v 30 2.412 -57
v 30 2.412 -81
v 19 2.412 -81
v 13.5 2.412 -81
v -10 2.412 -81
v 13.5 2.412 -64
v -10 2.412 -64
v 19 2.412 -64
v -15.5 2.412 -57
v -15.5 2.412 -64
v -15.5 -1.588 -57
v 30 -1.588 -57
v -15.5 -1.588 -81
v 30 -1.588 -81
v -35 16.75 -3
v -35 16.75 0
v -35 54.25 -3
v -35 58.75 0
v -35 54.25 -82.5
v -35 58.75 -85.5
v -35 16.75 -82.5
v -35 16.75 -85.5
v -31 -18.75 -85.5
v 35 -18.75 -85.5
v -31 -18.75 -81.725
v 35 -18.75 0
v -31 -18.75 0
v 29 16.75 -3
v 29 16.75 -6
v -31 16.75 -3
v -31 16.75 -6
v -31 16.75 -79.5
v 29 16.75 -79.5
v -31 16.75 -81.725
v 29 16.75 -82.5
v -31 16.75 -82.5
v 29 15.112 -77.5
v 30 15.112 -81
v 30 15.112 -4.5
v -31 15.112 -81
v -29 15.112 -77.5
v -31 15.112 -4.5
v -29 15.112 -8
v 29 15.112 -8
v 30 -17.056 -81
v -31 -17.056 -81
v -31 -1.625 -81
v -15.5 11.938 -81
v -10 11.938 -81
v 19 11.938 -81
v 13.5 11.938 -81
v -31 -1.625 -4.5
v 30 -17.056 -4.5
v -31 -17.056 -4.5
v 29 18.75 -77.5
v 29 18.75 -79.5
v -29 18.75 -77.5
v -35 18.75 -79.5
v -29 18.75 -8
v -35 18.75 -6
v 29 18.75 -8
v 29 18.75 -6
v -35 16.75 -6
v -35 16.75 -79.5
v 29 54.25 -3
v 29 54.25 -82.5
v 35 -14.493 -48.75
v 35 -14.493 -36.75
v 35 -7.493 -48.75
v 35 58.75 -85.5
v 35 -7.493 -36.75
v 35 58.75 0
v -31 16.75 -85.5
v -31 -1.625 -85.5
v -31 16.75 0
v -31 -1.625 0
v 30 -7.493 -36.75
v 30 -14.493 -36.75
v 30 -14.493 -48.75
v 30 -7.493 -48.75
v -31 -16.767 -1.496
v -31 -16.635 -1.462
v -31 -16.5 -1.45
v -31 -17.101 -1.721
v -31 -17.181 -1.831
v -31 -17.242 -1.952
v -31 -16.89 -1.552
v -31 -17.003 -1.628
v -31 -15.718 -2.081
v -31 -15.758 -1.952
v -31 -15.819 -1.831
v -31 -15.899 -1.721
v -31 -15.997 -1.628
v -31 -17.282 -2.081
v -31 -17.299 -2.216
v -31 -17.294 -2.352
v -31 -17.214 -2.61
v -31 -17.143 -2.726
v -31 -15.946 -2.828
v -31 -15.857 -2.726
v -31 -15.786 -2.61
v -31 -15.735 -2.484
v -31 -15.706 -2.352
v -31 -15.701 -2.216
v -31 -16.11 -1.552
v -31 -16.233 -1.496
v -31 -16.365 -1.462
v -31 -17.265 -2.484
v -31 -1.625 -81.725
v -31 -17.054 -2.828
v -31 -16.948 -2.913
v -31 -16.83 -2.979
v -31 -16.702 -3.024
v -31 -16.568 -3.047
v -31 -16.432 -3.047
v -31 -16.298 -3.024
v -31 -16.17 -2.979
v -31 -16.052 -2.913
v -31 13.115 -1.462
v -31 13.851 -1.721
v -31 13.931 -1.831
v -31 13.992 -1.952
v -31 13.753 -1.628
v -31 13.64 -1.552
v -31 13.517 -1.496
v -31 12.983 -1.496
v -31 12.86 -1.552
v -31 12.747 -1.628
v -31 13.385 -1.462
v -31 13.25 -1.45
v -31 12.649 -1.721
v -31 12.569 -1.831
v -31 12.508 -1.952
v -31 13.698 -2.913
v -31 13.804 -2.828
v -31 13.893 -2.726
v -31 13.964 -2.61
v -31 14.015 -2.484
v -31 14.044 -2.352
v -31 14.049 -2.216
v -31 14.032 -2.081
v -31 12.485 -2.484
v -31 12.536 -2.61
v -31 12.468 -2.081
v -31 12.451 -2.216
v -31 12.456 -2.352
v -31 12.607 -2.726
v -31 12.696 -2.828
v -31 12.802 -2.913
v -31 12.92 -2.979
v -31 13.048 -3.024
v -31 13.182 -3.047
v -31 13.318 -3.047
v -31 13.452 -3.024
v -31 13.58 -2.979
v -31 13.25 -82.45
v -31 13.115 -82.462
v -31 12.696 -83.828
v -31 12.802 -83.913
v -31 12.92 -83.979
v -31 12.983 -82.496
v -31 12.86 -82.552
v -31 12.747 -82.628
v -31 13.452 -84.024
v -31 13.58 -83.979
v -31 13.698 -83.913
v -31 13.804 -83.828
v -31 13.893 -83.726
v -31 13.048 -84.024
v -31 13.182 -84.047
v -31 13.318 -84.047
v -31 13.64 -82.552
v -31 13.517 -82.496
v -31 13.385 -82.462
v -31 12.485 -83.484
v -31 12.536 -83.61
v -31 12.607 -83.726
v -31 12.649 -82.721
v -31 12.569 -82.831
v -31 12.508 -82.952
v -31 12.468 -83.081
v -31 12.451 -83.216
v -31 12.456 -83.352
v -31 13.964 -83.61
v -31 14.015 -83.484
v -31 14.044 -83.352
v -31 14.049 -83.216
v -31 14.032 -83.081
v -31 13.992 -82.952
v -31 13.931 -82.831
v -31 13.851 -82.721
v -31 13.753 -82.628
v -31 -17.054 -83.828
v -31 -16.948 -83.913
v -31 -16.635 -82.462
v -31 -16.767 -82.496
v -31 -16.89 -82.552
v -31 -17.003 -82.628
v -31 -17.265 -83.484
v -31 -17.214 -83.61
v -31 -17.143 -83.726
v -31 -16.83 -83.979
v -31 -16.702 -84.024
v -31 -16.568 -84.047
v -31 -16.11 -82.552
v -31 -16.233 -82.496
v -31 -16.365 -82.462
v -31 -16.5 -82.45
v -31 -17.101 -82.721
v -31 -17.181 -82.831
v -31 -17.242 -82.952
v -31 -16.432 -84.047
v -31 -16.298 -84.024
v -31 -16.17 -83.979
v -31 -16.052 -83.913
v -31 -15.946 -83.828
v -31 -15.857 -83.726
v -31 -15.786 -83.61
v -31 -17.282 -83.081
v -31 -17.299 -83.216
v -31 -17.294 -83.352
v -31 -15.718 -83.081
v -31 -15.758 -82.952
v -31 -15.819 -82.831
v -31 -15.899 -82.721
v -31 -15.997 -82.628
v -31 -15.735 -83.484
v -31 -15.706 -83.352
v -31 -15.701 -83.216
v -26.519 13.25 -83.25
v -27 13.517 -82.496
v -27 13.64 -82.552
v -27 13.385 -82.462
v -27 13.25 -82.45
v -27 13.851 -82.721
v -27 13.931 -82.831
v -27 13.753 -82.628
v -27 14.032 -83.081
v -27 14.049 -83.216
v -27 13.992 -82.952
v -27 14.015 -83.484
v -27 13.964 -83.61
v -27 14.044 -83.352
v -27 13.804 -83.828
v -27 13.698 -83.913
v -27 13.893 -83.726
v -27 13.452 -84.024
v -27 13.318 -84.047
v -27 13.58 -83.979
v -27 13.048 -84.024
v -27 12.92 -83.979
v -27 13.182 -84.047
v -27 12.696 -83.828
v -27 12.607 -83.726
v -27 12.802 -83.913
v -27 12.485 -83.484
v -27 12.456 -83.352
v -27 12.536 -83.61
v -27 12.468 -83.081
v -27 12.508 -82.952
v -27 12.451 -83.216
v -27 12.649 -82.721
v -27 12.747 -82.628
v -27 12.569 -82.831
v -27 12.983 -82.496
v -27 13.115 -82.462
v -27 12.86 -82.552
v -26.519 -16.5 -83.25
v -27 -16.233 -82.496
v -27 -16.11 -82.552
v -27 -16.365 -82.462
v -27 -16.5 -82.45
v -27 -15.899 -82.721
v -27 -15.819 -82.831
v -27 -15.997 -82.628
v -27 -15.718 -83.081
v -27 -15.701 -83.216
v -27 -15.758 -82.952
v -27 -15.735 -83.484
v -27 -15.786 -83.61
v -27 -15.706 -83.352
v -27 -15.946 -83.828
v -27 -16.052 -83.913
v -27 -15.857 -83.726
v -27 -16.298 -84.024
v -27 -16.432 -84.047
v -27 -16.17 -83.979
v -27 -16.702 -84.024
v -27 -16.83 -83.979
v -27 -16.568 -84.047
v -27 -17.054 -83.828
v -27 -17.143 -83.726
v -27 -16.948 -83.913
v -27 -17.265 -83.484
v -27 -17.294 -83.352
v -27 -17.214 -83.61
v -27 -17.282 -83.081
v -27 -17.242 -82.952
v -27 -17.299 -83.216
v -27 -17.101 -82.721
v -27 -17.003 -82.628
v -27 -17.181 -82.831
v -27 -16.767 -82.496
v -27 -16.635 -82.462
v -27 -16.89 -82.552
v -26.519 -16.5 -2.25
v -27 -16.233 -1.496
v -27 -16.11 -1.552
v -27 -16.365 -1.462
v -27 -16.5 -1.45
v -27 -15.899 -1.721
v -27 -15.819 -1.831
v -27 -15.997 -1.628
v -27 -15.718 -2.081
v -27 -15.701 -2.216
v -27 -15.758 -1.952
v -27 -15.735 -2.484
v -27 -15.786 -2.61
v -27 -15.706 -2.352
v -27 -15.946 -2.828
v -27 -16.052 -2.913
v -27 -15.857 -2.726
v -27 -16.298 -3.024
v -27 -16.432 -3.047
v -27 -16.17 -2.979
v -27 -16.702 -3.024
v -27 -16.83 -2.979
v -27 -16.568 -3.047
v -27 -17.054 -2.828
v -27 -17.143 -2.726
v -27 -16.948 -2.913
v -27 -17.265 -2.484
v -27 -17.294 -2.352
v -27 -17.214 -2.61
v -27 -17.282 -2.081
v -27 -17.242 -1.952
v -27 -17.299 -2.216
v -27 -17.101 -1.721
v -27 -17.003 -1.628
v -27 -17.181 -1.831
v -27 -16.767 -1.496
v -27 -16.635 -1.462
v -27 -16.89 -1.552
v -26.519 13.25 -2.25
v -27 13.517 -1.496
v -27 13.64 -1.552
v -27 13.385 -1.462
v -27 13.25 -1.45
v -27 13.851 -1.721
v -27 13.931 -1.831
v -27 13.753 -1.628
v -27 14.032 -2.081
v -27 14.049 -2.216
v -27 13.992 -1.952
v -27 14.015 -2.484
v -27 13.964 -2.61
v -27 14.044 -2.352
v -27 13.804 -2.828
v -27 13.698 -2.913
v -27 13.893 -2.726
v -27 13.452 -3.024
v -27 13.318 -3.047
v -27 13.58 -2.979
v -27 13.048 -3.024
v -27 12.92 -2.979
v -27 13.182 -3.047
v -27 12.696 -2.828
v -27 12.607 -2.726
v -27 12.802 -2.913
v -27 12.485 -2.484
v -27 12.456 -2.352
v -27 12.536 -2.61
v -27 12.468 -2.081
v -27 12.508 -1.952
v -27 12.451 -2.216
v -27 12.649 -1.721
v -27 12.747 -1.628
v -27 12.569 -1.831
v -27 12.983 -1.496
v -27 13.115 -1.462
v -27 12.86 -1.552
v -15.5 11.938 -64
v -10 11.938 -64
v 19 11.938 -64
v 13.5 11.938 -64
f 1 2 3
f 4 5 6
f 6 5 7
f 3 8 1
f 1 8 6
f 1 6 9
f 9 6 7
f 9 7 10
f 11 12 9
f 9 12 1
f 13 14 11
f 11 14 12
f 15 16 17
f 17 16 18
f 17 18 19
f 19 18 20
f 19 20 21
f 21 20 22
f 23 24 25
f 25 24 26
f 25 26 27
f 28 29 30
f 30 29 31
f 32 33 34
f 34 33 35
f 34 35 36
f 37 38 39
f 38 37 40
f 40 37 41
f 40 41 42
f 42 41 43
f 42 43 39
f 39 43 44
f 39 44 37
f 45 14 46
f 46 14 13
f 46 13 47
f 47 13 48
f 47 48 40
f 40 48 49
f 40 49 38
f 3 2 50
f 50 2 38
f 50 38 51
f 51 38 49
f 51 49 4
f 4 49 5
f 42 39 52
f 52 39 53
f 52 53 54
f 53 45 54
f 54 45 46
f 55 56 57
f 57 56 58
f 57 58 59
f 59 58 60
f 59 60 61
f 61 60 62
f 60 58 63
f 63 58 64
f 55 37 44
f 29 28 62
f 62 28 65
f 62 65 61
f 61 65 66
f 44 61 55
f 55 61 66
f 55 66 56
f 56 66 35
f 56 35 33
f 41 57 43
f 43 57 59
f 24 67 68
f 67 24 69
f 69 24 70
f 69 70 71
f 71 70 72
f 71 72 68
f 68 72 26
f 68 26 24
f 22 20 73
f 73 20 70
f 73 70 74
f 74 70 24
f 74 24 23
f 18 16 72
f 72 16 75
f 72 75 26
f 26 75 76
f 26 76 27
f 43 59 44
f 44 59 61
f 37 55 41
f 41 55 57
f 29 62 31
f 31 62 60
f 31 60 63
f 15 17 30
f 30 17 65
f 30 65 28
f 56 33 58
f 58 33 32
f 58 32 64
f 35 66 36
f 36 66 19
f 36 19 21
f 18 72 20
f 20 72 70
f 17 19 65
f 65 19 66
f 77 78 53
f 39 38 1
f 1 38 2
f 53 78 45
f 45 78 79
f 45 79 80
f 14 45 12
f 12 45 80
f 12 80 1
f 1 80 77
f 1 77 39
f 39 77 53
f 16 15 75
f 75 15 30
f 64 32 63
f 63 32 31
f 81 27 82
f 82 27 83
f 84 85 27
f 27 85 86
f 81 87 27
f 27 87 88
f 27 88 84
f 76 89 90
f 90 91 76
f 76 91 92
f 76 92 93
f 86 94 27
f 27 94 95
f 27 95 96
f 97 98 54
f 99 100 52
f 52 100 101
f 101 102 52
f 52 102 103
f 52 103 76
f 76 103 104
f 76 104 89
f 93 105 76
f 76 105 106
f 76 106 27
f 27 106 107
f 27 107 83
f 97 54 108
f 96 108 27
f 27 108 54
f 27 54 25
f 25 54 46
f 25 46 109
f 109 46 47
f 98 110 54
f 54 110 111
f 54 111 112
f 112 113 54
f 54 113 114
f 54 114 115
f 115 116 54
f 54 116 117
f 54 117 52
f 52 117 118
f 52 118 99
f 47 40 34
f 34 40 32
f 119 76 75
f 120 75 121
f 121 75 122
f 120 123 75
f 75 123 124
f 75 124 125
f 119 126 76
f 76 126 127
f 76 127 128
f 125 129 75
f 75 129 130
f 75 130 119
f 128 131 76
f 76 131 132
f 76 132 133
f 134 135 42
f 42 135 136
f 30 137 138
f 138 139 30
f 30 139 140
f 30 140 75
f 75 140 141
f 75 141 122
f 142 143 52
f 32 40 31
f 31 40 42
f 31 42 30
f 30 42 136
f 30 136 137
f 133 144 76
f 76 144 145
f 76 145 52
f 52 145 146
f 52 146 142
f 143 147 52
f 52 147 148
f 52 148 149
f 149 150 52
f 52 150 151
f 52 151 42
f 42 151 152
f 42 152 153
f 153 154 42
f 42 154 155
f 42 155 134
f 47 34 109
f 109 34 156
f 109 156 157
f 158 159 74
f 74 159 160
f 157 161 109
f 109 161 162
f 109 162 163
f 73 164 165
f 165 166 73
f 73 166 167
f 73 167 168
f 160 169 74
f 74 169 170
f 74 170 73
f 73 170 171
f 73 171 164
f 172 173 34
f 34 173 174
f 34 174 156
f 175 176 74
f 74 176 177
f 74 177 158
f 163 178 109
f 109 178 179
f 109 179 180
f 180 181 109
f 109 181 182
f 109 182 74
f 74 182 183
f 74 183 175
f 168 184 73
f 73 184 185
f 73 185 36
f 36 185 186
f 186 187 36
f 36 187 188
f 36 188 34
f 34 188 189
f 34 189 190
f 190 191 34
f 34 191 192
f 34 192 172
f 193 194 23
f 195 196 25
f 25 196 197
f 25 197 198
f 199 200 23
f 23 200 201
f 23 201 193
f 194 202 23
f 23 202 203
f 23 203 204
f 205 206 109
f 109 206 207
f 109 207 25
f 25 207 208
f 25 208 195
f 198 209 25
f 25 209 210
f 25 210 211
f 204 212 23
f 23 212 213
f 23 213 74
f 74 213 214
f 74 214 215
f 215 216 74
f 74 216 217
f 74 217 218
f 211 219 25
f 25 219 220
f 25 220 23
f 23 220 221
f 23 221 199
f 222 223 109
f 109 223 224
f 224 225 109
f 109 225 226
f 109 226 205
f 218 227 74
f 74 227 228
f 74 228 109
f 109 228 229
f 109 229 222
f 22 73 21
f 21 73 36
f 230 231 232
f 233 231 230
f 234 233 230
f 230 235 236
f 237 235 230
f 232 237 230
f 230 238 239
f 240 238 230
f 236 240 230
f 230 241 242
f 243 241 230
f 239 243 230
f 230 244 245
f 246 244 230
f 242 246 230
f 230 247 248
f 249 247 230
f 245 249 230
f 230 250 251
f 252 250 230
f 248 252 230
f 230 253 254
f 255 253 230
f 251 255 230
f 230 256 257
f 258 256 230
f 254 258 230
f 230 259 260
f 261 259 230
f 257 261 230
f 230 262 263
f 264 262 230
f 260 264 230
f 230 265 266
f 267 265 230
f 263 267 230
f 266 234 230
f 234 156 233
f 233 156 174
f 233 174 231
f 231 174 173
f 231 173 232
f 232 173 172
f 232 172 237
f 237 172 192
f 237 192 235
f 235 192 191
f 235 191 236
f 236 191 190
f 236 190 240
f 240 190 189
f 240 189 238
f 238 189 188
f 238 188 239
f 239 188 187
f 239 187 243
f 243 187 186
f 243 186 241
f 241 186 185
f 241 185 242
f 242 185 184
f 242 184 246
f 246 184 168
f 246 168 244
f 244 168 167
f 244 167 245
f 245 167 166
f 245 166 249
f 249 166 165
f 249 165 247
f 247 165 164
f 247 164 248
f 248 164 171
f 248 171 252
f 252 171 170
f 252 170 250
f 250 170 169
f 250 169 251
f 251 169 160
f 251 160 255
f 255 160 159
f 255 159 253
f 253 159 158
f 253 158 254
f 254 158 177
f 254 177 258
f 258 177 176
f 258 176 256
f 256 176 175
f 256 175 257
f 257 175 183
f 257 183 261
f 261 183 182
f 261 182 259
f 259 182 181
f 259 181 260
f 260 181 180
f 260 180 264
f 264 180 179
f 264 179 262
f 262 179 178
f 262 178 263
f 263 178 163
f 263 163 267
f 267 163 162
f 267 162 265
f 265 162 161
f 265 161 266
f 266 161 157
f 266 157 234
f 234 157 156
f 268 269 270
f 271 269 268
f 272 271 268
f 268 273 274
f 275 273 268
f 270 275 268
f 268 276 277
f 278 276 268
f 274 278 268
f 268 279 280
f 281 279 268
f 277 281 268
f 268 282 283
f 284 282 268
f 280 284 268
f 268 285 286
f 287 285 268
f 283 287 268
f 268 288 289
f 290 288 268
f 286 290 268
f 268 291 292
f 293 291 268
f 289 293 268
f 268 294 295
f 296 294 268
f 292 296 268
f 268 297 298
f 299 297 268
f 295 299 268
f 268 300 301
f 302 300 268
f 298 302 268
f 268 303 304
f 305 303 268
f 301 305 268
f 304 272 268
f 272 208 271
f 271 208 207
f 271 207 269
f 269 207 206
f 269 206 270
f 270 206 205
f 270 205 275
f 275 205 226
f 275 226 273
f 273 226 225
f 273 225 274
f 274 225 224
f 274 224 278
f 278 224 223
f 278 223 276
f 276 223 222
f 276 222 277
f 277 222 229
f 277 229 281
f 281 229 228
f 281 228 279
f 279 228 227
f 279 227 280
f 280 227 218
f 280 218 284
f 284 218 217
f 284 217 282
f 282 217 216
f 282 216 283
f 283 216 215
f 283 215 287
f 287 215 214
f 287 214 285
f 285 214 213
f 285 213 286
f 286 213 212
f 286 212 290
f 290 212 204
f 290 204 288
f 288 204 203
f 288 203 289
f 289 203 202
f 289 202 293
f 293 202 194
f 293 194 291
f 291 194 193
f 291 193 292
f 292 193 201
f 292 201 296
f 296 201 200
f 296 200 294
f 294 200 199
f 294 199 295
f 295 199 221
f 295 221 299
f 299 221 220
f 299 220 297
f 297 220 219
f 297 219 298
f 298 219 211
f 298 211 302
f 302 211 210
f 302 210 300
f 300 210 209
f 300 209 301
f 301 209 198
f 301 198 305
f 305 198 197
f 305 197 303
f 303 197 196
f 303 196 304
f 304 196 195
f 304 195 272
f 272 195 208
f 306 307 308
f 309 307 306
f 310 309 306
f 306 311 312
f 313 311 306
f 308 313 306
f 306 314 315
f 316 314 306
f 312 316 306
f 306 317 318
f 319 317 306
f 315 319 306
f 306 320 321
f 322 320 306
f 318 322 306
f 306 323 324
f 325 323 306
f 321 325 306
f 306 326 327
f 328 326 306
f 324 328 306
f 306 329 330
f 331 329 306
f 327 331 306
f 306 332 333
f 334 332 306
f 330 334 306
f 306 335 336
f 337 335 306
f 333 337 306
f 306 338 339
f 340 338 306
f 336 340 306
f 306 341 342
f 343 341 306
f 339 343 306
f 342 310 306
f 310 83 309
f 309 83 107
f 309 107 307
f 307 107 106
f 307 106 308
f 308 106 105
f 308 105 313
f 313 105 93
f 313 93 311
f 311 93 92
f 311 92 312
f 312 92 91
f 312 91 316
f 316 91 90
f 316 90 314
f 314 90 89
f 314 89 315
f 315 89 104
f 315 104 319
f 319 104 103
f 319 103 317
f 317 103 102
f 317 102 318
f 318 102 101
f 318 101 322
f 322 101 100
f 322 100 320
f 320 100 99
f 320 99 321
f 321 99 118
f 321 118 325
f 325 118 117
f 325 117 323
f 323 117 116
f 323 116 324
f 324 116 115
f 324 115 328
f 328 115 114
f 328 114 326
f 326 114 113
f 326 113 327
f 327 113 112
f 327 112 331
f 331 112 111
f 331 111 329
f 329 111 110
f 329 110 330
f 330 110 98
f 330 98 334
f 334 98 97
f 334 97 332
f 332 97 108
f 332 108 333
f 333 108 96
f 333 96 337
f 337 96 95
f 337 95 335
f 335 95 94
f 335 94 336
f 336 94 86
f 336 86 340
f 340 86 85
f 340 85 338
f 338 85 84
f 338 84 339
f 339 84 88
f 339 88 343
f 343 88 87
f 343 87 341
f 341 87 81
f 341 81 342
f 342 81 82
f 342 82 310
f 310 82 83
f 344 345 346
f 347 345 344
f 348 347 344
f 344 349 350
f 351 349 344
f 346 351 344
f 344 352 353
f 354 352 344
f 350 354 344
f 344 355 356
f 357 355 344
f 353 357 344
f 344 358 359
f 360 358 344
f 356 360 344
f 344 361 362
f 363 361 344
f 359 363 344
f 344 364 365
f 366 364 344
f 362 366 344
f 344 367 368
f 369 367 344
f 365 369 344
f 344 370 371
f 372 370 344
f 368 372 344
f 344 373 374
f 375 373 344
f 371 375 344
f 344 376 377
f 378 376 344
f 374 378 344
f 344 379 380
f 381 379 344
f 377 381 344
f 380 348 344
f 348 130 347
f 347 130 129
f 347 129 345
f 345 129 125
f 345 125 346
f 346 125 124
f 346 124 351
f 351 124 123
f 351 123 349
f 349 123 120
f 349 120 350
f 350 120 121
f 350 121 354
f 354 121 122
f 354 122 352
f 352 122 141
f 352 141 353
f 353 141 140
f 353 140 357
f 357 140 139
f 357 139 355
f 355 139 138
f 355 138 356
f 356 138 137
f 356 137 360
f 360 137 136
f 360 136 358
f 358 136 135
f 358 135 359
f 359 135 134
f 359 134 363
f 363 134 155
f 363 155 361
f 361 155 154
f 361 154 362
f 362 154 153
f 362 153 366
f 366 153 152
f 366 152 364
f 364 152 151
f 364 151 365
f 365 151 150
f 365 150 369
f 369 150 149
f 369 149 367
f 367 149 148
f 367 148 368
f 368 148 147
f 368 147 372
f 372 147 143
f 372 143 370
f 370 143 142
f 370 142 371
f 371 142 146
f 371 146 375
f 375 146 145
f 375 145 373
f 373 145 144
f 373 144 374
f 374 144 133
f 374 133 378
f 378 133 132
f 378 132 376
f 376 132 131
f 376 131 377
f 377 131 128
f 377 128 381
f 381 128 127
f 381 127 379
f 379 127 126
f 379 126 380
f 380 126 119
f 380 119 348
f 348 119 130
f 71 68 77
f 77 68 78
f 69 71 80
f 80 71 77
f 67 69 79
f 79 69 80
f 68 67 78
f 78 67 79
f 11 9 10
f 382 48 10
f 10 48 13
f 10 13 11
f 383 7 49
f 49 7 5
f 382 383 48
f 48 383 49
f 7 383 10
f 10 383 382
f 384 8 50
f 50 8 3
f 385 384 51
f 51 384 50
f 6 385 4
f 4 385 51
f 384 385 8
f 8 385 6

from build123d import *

# Parameters (mm, degrees)
SKETCH1_W             = 70
SKETCH1_H             = 37.5
BOSS_EXTRUDE1_DEPTH   = 85.5
SHELL1_T              = -6
SKETCH4_W             = 58
SKETCH4_H             = 2
BOSS_EXTRUDE2_DEPTH   = 31.5
SKETCH3_W             = 64
SKETCH3_H             = 3
CUT_EXTRUDE2_DEPTH    = 2
BOSS_EXTRUDE3_DEPTH   = 40
SKETCH8_W             = 64
SKETCH8_H             = 79.5
BOSS_EXTRUDE4_DEPTH   = 4.5
SKETCH9_W             = 76.5
SKETCH9_H             = 32.167861311
CUT_EXTRUDE3_DEPTH    = 65
SKETCH14_W            = 85.5
SKETCH14_H            = 35.5
CUT_EXTRUDE4_DEPTH    = 4
M2_TAPPED_HOLE1_D     = 1.6
M2_TAPPED_HOLE1_DEPTH = 4
M2_TAPPED_HOLE1_TIP   = 0.480688495
M2_TAPPED_HOLE2_D     = 1.6
M2_TAPPED_HOLE2_DEPTH = 4
M2_TAPPED_HOLE2_TIP   = 0.480688495
SKETCH17_W            = 12
SKETCH17_H            = 7
CUT_EXTRUDE5_DEPTH    = 10
SKETCH19_W            = 24
SKETCH19_H            = 4
BOSS_EXTRUDE5_DEPTH   = 61
SKETCH20_W            = 5.5
SKETCH20_H            = 9.526840529
BOSS_EXTRUDE7_DEPTH   = 17
SKETCH21_W            = 24
SKETCH21_H            = 4
CUT_EXTRUDE6_DEPTH    = 15.5


with BuildPart() as part:
    # Sketch1 → Boss-Extrude1 (new body)
    with BuildSketch(Plane.XY):
        Rectangle(SKETCH1_W, SKETCH1_H)
    extrude(amount=-BOSS_EXTRUDE1_DEPTH)

    # Shell1
    shell1_openings = [part.faces().sort_by_distance(p)[0] for p in [
        (0, 18.75, -42.75),
    ]]
    offset(amount=SHELL1_T, openings=shell1_openings, kind=Kind.INTERSECTION)

    # Sketch4 → Boss-Extrude2 (add)
    with BuildSketch(Plane(origin=(0, -12.75, 0), x_dir=(1, 0, 0), z_dir=(0, 1, 0))):
        with Locations((0, 78.5)):
            Rectangle(SKETCH4_W, SKETCH4_H)
        with Locations((0, 7)):
            Rectangle(SKETCH4_W, SKETCH4_H)
    extrude(amount=BOSS_EXTRUDE2_DEPTH)

    # Sketch3 → Cut-Extrude2 (cut)
    with BuildSketch(Plane(origin=(0, 18.75, 0), x_dir=(1, 0, 0), z_dir=(0, 1, 0))):
        with Locations((-3, 4.5)):
            Rectangle(SKETCH3_W, SKETCH3_H)
        with Locations((-3, 81)):
            Rectangle(SKETCH3_W, SKETCH3_H)
    extrude(amount=-CUT_EXTRUDE2_DEPTH, mode=Mode.SUBTRACT)

    # Sketch6 → Boss-Extrude3 (add)
    with BuildSketch(Plane(origin=(0, 18.75, 0), x_dir=(1, 0, 0), z_dir=(0, 1, 0))):
        Polygon((29, 79.5), (29, 6), (29, 3), (-35, 3), (-35, 0), (35, 0), (35, 85.5), (-35, 85.5), (-35, 82.5), (29, 82.5), align=None)
    extrude(amount=BOSS_EXTRUDE3_DEPTH)

    # Sketch8 → Boss-Extrude4 (add)
    with BuildSketch(Plane(origin=(0, 58.75, 0), x_dir=(1, 0, 0), z_dir=(0, 1, 0))):
        with Locations((-3, 42.75)):
            Rectangle(SKETCH8_W, SKETCH8_H)
    extrude(amount=-BOSS_EXTRUDE4_DEPTH)

    # Sketch9 → Cut-Extrude3 (cut)
    with BuildSketch(Plane.ZY.offset(35)):
        with Locations((-42.75, -0.972421296)):
            Rectangle(SKETCH9_W, SKETCH9_H)
    extrude(amount=-CUT_EXTRUDE3_DEPTH, mode=Mode.SUBTRACT)

    # Sketch14 → Cut-Extrude4 (cut)
    with BuildSketch(Plane.ZY.offset(35)):
        with Locations((-42.75, -1)):
            Rectangle(SKETCH14_W, SKETCH14_H)
    extrude(amount=-CUT_EXTRUDE4_DEPTH, mode=Mode.SUBTRACT)

    # M2 Tapped Hole1
    with Locations(Plane.ZY.offset(35)):
        with Locations((-2.25, 13.25), (-83.25, -16.5), (-83.25, 13.25), (-2.25, -16.5)):
            Hole(M2_TAPPED_HOLE1_D / 2, depth=M2_TAPPED_HOLE1_DEPTH)
            with Locations((0, 0, -(M2_TAPPED_HOLE1_DEPTH + M2_TAPPED_HOLE1_TIP / 2))):  # 118° drill point
                Cone(0, M2_TAPPED_HOLE1_D / 2, M2_TAPPED_HOLE1_TIP, mode=Mode.SUBTRACT)

    # M2 Tapped Hole2
    with Locations(Plane.ZY.offset(31)):
        with Locations((-2.25, 13.25), (-2.25, -16.5), (-83.25, -16.5), (-83.25, 13.25)):
            Hole(M2_TAPPED_HOLE2_D / 2, depth=M2_TAPPED_HOLE2_DEPTH)
            with Locations((0, 0, -(M2_TAPPED_HOLE2_DEPTH + M2_TAPPED_HOLE2_TIP / 2))):  # 118° drill point
                Cone(0, M2_TAPPED_HOLE2_D / 2, M2_TAPPED_HOLE2_TIP, mode=Mode.SUBTRACT)

    # Sketch17 → Cut-Extrude5 (cut)
    with BuildSketch(Plane(origin=(35, 0, 0), x_dir=(0, 0, -1), z_dir=(1, 0, 0))):
        with Locations((42.75, -10.993248875)):
            Rectangle(SKETCH17_W, SKETCH17_H)
    extrude(amount=-CUT_EXTRUDE5_DEPTH, mode=Mode.SUBTRACT)

    # Sketch19 → Boss-Extrude5 (add)
    with BuildSketch(Plane.ZY.offset(31)):
        with Locations((-69, 0.411509359)):
            Rectangle(SKETCH19_W, SKETCH19_H)
    extrude(amount=-BOSS_EXTRUDE5_DEPTH)

    # Sketch20 → Boss-Extrude7 (add)
    with BuildSketch(Plane.XY.offset(-81)):
        with Locations((16.25, 7.174929624)):
            Rectangle(SKETCH20_W, SKETCH20_H)
        with Locations((-12.75, 7.174929624)):
            Rectangle(SKETCH20_W, SKETCH20_H)
    extrude(amount=BOSS_EXTRUDE7_DEPTH)

    # Sketch21 → Cut-Extrude6 (cut)
    with BuildSketch(Plane.ZY.offset(31)):
        with Locations((-69, 0.411509359)):
            Rectangle(SKETCH21_W, SKETCH21_H)
    extrude(amount=-CUT_EXTRUDE6_DEPTH, mode=Mode.SUBTRACT)


solid = part.part
